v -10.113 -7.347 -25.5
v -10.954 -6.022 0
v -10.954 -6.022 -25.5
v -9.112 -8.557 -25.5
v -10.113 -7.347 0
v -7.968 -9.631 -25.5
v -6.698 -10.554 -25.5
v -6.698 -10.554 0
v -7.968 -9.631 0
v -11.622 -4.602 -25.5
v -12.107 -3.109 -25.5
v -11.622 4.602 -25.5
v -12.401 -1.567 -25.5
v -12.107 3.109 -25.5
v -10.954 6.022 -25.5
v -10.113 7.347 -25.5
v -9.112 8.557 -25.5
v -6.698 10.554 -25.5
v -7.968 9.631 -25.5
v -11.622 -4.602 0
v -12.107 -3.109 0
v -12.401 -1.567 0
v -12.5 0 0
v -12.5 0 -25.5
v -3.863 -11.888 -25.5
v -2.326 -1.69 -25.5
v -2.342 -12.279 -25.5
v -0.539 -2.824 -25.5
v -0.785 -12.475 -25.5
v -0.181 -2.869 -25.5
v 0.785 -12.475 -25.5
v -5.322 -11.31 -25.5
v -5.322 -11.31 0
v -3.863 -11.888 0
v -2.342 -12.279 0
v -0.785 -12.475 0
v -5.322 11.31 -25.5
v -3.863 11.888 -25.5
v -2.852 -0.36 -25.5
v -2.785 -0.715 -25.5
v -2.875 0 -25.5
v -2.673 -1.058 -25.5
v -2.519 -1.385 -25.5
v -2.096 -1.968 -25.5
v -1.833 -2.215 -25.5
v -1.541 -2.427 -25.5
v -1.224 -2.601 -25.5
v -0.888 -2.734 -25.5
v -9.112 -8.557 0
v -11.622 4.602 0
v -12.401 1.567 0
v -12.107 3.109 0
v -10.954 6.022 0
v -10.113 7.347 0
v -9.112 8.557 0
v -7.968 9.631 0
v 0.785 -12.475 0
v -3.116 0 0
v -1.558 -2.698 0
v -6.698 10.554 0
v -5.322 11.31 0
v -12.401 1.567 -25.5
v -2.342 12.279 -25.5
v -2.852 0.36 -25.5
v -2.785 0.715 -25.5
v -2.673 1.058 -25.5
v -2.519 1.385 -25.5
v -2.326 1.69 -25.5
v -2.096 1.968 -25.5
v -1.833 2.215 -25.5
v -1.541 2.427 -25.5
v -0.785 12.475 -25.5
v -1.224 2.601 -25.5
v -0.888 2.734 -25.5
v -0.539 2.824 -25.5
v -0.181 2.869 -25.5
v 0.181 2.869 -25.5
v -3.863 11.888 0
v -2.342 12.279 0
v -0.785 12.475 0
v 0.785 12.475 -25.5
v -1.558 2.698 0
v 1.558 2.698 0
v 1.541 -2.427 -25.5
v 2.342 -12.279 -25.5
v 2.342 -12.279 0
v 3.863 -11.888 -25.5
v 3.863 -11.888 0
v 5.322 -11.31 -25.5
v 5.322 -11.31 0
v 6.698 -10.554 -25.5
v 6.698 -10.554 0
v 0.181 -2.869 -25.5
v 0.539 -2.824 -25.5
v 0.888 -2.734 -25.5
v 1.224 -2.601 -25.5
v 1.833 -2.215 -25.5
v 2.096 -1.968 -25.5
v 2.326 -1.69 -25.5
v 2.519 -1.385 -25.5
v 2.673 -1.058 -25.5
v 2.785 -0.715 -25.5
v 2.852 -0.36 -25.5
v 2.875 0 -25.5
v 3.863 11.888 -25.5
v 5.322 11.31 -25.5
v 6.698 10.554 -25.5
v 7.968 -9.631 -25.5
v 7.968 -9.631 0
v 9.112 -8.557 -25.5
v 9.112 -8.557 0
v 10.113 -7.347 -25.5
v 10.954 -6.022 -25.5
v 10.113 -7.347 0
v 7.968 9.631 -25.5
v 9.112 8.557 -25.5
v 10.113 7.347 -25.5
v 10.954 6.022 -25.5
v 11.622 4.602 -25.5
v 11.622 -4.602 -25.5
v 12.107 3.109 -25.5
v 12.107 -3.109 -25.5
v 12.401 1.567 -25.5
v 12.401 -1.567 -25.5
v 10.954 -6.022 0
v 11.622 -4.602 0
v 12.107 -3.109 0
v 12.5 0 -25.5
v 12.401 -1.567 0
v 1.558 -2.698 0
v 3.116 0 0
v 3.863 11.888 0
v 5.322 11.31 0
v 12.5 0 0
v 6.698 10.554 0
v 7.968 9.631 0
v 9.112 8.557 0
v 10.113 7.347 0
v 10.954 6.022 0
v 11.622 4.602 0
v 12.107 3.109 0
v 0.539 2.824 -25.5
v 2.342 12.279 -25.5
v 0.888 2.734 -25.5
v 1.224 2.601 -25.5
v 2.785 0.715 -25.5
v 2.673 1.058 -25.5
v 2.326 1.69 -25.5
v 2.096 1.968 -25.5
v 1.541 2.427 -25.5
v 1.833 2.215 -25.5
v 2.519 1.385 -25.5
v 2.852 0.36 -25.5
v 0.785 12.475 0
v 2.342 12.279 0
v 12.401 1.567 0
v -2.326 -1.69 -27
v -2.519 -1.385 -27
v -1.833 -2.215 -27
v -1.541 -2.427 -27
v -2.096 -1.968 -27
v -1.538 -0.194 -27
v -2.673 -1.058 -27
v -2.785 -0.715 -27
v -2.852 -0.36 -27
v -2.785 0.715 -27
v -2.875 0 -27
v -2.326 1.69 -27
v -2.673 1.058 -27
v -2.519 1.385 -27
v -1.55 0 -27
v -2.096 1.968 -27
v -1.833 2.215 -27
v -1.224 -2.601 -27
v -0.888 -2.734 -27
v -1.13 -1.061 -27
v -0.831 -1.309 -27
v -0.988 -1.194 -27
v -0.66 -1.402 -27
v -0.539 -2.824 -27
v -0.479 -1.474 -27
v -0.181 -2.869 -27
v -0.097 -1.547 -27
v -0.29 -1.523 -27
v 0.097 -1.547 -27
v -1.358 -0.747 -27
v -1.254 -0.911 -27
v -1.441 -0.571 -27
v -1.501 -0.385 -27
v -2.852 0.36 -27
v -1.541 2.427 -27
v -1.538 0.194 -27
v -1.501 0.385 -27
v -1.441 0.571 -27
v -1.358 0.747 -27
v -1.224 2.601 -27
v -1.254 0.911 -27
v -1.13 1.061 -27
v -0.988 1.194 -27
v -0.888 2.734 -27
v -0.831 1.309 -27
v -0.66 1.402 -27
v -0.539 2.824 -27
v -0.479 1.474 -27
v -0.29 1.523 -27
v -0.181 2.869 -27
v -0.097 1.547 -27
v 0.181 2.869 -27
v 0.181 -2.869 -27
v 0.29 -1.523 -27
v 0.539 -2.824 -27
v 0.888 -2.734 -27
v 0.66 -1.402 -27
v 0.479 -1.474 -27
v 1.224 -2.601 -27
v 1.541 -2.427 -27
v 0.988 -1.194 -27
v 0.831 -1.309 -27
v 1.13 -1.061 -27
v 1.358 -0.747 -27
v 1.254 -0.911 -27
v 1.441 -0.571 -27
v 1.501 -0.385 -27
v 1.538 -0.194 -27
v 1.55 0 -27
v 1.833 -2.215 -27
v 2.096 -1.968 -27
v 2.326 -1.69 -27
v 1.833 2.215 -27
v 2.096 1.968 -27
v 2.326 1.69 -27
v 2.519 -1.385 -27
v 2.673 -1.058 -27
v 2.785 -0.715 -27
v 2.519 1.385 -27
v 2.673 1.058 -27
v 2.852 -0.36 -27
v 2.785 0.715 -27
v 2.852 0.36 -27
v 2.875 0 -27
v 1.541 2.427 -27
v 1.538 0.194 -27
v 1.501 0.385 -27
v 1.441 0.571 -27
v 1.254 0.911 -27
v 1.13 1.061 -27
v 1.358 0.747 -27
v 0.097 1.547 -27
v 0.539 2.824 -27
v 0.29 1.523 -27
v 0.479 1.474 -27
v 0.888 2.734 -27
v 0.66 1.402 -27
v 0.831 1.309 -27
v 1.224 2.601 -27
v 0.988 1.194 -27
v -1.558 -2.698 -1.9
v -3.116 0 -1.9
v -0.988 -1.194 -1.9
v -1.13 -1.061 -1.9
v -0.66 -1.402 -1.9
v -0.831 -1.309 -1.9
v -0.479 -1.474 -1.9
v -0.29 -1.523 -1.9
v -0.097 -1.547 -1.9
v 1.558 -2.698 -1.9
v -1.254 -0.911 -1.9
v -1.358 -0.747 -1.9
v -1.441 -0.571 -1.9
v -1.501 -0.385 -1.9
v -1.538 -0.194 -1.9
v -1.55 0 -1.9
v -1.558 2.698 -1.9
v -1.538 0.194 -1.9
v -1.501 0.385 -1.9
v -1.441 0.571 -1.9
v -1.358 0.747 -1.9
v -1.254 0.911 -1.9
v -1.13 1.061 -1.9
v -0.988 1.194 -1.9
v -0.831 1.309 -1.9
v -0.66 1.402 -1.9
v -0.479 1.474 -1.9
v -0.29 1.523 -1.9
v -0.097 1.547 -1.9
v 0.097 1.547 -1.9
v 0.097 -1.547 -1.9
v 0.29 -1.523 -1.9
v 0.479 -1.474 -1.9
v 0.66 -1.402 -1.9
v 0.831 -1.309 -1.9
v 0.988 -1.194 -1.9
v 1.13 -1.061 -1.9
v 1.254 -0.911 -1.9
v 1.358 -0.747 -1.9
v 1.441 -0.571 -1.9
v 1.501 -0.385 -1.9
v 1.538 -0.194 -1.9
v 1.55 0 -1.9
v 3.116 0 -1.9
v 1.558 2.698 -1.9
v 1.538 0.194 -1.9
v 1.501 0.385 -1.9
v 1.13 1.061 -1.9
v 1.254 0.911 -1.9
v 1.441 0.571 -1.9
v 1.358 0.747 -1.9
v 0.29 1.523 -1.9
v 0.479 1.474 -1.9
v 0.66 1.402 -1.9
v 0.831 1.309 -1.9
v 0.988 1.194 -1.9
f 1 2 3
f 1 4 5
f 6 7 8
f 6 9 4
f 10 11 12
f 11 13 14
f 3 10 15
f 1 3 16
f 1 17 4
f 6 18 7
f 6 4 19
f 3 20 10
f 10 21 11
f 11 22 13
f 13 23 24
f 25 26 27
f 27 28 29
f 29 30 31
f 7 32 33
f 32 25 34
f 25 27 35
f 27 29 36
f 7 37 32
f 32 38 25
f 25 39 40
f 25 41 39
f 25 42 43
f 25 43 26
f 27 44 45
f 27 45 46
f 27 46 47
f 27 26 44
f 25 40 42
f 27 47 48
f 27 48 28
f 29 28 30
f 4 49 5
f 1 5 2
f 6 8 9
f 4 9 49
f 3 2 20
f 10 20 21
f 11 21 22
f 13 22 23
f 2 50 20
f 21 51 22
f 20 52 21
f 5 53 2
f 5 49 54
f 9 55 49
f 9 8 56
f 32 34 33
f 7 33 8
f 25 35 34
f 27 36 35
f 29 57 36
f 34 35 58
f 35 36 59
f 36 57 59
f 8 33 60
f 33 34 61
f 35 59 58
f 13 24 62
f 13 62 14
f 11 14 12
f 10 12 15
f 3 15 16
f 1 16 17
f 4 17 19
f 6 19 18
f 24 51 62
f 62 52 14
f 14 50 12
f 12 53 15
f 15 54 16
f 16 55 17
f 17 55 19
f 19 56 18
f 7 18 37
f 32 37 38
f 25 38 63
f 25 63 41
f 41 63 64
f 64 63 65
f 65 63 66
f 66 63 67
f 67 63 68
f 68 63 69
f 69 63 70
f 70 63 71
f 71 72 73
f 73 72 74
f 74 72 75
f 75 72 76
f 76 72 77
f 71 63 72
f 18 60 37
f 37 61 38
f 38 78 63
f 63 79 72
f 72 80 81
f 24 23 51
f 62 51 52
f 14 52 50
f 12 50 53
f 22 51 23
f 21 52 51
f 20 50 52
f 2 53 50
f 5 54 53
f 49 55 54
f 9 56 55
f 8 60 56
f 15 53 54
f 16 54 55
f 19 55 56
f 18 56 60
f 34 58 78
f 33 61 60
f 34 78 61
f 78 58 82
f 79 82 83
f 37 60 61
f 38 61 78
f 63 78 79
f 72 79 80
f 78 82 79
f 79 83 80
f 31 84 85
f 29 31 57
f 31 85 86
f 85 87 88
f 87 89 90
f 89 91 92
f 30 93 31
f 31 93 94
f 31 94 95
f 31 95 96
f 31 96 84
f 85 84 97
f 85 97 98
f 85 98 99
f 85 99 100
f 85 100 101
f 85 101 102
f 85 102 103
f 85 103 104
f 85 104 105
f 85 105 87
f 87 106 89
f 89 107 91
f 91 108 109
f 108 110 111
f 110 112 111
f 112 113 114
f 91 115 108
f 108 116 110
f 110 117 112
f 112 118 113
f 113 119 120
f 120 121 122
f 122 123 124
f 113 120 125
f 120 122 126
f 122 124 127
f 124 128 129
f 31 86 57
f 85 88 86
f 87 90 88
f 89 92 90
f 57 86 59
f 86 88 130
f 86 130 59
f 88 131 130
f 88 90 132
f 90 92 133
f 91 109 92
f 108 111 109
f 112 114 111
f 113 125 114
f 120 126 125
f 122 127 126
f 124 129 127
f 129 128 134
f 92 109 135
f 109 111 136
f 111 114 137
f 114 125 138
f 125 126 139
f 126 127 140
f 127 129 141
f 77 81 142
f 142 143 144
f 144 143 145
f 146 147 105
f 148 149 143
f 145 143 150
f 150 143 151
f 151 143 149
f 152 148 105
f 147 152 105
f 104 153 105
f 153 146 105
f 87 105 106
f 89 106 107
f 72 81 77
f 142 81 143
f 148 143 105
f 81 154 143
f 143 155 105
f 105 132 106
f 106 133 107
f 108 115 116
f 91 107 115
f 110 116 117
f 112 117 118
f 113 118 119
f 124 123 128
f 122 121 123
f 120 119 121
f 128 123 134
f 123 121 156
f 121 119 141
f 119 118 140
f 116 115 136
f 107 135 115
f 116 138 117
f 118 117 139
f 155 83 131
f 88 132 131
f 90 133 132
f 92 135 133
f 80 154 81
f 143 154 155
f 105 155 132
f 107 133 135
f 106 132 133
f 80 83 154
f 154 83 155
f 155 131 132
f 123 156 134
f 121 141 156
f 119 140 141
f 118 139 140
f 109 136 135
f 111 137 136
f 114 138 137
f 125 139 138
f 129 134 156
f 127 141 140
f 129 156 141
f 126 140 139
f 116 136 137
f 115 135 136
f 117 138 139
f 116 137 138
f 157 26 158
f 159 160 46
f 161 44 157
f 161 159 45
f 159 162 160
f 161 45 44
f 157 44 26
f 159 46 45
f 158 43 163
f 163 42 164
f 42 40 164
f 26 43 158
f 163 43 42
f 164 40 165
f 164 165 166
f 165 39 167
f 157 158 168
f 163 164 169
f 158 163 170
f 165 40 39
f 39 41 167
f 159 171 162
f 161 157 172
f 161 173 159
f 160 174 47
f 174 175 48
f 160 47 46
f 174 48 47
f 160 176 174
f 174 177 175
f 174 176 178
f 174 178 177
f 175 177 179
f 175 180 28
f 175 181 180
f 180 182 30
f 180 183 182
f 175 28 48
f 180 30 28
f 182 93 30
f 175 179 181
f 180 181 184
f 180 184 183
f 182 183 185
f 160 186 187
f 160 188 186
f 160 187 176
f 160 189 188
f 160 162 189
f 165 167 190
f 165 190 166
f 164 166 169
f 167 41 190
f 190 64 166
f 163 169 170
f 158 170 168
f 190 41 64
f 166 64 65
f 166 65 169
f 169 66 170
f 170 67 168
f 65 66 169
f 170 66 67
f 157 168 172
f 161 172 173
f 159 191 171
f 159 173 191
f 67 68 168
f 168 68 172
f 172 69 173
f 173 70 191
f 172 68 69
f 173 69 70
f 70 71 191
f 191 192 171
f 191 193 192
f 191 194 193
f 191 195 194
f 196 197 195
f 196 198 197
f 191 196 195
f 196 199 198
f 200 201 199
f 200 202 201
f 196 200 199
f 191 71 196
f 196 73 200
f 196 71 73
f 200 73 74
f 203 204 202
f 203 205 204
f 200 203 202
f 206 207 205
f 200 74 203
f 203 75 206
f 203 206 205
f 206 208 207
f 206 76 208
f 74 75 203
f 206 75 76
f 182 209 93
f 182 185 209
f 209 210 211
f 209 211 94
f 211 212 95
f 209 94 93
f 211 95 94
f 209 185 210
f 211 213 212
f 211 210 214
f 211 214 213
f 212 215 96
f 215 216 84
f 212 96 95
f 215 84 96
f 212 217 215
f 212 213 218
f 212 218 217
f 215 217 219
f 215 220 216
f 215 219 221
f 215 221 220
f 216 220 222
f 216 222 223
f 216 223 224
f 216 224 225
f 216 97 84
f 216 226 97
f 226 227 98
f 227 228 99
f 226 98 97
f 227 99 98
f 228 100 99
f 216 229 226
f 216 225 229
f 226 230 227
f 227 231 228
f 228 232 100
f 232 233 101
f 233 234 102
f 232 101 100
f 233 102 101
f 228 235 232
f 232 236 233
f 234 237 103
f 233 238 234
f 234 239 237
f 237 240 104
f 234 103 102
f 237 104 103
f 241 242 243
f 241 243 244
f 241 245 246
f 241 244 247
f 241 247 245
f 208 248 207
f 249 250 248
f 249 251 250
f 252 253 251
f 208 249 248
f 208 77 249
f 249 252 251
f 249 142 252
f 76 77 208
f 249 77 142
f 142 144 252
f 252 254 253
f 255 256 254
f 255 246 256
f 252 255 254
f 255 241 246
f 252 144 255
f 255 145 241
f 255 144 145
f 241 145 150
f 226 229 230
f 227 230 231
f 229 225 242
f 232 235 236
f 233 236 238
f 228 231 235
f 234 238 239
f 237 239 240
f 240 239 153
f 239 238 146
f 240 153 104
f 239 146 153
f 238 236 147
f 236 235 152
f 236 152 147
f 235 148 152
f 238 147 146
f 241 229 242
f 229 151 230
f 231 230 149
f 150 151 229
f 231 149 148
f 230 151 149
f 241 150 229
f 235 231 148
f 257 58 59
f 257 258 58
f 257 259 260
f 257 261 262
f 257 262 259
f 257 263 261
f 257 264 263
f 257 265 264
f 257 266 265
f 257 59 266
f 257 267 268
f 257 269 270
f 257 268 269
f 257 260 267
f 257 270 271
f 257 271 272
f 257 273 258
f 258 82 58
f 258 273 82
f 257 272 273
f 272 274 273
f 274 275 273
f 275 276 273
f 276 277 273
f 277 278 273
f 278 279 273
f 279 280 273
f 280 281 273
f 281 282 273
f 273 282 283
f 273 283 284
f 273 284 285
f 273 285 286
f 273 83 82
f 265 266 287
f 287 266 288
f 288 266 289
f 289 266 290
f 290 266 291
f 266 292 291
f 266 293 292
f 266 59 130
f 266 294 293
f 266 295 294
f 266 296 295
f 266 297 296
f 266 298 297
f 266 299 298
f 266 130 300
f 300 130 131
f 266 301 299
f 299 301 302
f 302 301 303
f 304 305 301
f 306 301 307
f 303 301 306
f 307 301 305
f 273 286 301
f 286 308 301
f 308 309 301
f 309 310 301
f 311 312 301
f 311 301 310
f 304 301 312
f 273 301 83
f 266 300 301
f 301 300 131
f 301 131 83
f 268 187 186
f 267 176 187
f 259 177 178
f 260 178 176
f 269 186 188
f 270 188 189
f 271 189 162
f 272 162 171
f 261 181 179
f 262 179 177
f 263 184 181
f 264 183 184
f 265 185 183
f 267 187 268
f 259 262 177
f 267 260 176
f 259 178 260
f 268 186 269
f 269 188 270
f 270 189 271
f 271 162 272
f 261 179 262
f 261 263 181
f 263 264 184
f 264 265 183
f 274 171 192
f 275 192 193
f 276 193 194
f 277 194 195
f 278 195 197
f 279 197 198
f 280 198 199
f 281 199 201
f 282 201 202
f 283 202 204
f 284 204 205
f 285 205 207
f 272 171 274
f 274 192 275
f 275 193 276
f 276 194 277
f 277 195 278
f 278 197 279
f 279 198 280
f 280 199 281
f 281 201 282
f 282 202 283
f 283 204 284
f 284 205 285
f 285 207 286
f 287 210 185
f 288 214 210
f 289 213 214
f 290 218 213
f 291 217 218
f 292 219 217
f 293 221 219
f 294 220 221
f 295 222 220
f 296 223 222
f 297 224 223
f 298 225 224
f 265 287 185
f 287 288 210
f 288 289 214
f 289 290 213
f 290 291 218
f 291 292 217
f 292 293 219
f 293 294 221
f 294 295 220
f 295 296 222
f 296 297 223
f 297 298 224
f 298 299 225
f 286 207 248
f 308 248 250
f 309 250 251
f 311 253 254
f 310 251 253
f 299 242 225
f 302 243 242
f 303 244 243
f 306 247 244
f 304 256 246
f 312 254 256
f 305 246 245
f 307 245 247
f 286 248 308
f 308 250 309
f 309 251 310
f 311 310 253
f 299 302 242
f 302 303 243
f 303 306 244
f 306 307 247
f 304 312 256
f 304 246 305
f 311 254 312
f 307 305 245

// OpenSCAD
$fn = 50;

difference() {
	union() {
		translate(v = [0, 0, -25.5]) {
			cylinder(h = 25.5, r = 12.5);
		}
		#translate(v = [0, 0, -27.0]) {
			cylinder(h = 27, r = 2.875);
		}
	}
	union() {
		translate(v = [0, 0, 0]) {
			rotate(a = [0, 0, 0]) {
				difference() {
					union() {
						translate(v = [0, 0, -1.9]) {
							linear_extrude(height = 1.9) {
								polygon(points = [[3.1158, 0.0], [1.5579000000000005, 2.698361953111554], [-1.5578999999999994, 2.6983619531115544], [-3.1158, 3.815754496783323e-16], [-1.5579000000000014, -2.6983619531115535], [1.557899999999998, -2.6983619531115552]]);
							}
						}
					}
					union();
				}
			}
		}
		#translate(v = [0, 0, -100.0]) {
			cylinder(h = 200, r = 1.55);
		}
	}
}
